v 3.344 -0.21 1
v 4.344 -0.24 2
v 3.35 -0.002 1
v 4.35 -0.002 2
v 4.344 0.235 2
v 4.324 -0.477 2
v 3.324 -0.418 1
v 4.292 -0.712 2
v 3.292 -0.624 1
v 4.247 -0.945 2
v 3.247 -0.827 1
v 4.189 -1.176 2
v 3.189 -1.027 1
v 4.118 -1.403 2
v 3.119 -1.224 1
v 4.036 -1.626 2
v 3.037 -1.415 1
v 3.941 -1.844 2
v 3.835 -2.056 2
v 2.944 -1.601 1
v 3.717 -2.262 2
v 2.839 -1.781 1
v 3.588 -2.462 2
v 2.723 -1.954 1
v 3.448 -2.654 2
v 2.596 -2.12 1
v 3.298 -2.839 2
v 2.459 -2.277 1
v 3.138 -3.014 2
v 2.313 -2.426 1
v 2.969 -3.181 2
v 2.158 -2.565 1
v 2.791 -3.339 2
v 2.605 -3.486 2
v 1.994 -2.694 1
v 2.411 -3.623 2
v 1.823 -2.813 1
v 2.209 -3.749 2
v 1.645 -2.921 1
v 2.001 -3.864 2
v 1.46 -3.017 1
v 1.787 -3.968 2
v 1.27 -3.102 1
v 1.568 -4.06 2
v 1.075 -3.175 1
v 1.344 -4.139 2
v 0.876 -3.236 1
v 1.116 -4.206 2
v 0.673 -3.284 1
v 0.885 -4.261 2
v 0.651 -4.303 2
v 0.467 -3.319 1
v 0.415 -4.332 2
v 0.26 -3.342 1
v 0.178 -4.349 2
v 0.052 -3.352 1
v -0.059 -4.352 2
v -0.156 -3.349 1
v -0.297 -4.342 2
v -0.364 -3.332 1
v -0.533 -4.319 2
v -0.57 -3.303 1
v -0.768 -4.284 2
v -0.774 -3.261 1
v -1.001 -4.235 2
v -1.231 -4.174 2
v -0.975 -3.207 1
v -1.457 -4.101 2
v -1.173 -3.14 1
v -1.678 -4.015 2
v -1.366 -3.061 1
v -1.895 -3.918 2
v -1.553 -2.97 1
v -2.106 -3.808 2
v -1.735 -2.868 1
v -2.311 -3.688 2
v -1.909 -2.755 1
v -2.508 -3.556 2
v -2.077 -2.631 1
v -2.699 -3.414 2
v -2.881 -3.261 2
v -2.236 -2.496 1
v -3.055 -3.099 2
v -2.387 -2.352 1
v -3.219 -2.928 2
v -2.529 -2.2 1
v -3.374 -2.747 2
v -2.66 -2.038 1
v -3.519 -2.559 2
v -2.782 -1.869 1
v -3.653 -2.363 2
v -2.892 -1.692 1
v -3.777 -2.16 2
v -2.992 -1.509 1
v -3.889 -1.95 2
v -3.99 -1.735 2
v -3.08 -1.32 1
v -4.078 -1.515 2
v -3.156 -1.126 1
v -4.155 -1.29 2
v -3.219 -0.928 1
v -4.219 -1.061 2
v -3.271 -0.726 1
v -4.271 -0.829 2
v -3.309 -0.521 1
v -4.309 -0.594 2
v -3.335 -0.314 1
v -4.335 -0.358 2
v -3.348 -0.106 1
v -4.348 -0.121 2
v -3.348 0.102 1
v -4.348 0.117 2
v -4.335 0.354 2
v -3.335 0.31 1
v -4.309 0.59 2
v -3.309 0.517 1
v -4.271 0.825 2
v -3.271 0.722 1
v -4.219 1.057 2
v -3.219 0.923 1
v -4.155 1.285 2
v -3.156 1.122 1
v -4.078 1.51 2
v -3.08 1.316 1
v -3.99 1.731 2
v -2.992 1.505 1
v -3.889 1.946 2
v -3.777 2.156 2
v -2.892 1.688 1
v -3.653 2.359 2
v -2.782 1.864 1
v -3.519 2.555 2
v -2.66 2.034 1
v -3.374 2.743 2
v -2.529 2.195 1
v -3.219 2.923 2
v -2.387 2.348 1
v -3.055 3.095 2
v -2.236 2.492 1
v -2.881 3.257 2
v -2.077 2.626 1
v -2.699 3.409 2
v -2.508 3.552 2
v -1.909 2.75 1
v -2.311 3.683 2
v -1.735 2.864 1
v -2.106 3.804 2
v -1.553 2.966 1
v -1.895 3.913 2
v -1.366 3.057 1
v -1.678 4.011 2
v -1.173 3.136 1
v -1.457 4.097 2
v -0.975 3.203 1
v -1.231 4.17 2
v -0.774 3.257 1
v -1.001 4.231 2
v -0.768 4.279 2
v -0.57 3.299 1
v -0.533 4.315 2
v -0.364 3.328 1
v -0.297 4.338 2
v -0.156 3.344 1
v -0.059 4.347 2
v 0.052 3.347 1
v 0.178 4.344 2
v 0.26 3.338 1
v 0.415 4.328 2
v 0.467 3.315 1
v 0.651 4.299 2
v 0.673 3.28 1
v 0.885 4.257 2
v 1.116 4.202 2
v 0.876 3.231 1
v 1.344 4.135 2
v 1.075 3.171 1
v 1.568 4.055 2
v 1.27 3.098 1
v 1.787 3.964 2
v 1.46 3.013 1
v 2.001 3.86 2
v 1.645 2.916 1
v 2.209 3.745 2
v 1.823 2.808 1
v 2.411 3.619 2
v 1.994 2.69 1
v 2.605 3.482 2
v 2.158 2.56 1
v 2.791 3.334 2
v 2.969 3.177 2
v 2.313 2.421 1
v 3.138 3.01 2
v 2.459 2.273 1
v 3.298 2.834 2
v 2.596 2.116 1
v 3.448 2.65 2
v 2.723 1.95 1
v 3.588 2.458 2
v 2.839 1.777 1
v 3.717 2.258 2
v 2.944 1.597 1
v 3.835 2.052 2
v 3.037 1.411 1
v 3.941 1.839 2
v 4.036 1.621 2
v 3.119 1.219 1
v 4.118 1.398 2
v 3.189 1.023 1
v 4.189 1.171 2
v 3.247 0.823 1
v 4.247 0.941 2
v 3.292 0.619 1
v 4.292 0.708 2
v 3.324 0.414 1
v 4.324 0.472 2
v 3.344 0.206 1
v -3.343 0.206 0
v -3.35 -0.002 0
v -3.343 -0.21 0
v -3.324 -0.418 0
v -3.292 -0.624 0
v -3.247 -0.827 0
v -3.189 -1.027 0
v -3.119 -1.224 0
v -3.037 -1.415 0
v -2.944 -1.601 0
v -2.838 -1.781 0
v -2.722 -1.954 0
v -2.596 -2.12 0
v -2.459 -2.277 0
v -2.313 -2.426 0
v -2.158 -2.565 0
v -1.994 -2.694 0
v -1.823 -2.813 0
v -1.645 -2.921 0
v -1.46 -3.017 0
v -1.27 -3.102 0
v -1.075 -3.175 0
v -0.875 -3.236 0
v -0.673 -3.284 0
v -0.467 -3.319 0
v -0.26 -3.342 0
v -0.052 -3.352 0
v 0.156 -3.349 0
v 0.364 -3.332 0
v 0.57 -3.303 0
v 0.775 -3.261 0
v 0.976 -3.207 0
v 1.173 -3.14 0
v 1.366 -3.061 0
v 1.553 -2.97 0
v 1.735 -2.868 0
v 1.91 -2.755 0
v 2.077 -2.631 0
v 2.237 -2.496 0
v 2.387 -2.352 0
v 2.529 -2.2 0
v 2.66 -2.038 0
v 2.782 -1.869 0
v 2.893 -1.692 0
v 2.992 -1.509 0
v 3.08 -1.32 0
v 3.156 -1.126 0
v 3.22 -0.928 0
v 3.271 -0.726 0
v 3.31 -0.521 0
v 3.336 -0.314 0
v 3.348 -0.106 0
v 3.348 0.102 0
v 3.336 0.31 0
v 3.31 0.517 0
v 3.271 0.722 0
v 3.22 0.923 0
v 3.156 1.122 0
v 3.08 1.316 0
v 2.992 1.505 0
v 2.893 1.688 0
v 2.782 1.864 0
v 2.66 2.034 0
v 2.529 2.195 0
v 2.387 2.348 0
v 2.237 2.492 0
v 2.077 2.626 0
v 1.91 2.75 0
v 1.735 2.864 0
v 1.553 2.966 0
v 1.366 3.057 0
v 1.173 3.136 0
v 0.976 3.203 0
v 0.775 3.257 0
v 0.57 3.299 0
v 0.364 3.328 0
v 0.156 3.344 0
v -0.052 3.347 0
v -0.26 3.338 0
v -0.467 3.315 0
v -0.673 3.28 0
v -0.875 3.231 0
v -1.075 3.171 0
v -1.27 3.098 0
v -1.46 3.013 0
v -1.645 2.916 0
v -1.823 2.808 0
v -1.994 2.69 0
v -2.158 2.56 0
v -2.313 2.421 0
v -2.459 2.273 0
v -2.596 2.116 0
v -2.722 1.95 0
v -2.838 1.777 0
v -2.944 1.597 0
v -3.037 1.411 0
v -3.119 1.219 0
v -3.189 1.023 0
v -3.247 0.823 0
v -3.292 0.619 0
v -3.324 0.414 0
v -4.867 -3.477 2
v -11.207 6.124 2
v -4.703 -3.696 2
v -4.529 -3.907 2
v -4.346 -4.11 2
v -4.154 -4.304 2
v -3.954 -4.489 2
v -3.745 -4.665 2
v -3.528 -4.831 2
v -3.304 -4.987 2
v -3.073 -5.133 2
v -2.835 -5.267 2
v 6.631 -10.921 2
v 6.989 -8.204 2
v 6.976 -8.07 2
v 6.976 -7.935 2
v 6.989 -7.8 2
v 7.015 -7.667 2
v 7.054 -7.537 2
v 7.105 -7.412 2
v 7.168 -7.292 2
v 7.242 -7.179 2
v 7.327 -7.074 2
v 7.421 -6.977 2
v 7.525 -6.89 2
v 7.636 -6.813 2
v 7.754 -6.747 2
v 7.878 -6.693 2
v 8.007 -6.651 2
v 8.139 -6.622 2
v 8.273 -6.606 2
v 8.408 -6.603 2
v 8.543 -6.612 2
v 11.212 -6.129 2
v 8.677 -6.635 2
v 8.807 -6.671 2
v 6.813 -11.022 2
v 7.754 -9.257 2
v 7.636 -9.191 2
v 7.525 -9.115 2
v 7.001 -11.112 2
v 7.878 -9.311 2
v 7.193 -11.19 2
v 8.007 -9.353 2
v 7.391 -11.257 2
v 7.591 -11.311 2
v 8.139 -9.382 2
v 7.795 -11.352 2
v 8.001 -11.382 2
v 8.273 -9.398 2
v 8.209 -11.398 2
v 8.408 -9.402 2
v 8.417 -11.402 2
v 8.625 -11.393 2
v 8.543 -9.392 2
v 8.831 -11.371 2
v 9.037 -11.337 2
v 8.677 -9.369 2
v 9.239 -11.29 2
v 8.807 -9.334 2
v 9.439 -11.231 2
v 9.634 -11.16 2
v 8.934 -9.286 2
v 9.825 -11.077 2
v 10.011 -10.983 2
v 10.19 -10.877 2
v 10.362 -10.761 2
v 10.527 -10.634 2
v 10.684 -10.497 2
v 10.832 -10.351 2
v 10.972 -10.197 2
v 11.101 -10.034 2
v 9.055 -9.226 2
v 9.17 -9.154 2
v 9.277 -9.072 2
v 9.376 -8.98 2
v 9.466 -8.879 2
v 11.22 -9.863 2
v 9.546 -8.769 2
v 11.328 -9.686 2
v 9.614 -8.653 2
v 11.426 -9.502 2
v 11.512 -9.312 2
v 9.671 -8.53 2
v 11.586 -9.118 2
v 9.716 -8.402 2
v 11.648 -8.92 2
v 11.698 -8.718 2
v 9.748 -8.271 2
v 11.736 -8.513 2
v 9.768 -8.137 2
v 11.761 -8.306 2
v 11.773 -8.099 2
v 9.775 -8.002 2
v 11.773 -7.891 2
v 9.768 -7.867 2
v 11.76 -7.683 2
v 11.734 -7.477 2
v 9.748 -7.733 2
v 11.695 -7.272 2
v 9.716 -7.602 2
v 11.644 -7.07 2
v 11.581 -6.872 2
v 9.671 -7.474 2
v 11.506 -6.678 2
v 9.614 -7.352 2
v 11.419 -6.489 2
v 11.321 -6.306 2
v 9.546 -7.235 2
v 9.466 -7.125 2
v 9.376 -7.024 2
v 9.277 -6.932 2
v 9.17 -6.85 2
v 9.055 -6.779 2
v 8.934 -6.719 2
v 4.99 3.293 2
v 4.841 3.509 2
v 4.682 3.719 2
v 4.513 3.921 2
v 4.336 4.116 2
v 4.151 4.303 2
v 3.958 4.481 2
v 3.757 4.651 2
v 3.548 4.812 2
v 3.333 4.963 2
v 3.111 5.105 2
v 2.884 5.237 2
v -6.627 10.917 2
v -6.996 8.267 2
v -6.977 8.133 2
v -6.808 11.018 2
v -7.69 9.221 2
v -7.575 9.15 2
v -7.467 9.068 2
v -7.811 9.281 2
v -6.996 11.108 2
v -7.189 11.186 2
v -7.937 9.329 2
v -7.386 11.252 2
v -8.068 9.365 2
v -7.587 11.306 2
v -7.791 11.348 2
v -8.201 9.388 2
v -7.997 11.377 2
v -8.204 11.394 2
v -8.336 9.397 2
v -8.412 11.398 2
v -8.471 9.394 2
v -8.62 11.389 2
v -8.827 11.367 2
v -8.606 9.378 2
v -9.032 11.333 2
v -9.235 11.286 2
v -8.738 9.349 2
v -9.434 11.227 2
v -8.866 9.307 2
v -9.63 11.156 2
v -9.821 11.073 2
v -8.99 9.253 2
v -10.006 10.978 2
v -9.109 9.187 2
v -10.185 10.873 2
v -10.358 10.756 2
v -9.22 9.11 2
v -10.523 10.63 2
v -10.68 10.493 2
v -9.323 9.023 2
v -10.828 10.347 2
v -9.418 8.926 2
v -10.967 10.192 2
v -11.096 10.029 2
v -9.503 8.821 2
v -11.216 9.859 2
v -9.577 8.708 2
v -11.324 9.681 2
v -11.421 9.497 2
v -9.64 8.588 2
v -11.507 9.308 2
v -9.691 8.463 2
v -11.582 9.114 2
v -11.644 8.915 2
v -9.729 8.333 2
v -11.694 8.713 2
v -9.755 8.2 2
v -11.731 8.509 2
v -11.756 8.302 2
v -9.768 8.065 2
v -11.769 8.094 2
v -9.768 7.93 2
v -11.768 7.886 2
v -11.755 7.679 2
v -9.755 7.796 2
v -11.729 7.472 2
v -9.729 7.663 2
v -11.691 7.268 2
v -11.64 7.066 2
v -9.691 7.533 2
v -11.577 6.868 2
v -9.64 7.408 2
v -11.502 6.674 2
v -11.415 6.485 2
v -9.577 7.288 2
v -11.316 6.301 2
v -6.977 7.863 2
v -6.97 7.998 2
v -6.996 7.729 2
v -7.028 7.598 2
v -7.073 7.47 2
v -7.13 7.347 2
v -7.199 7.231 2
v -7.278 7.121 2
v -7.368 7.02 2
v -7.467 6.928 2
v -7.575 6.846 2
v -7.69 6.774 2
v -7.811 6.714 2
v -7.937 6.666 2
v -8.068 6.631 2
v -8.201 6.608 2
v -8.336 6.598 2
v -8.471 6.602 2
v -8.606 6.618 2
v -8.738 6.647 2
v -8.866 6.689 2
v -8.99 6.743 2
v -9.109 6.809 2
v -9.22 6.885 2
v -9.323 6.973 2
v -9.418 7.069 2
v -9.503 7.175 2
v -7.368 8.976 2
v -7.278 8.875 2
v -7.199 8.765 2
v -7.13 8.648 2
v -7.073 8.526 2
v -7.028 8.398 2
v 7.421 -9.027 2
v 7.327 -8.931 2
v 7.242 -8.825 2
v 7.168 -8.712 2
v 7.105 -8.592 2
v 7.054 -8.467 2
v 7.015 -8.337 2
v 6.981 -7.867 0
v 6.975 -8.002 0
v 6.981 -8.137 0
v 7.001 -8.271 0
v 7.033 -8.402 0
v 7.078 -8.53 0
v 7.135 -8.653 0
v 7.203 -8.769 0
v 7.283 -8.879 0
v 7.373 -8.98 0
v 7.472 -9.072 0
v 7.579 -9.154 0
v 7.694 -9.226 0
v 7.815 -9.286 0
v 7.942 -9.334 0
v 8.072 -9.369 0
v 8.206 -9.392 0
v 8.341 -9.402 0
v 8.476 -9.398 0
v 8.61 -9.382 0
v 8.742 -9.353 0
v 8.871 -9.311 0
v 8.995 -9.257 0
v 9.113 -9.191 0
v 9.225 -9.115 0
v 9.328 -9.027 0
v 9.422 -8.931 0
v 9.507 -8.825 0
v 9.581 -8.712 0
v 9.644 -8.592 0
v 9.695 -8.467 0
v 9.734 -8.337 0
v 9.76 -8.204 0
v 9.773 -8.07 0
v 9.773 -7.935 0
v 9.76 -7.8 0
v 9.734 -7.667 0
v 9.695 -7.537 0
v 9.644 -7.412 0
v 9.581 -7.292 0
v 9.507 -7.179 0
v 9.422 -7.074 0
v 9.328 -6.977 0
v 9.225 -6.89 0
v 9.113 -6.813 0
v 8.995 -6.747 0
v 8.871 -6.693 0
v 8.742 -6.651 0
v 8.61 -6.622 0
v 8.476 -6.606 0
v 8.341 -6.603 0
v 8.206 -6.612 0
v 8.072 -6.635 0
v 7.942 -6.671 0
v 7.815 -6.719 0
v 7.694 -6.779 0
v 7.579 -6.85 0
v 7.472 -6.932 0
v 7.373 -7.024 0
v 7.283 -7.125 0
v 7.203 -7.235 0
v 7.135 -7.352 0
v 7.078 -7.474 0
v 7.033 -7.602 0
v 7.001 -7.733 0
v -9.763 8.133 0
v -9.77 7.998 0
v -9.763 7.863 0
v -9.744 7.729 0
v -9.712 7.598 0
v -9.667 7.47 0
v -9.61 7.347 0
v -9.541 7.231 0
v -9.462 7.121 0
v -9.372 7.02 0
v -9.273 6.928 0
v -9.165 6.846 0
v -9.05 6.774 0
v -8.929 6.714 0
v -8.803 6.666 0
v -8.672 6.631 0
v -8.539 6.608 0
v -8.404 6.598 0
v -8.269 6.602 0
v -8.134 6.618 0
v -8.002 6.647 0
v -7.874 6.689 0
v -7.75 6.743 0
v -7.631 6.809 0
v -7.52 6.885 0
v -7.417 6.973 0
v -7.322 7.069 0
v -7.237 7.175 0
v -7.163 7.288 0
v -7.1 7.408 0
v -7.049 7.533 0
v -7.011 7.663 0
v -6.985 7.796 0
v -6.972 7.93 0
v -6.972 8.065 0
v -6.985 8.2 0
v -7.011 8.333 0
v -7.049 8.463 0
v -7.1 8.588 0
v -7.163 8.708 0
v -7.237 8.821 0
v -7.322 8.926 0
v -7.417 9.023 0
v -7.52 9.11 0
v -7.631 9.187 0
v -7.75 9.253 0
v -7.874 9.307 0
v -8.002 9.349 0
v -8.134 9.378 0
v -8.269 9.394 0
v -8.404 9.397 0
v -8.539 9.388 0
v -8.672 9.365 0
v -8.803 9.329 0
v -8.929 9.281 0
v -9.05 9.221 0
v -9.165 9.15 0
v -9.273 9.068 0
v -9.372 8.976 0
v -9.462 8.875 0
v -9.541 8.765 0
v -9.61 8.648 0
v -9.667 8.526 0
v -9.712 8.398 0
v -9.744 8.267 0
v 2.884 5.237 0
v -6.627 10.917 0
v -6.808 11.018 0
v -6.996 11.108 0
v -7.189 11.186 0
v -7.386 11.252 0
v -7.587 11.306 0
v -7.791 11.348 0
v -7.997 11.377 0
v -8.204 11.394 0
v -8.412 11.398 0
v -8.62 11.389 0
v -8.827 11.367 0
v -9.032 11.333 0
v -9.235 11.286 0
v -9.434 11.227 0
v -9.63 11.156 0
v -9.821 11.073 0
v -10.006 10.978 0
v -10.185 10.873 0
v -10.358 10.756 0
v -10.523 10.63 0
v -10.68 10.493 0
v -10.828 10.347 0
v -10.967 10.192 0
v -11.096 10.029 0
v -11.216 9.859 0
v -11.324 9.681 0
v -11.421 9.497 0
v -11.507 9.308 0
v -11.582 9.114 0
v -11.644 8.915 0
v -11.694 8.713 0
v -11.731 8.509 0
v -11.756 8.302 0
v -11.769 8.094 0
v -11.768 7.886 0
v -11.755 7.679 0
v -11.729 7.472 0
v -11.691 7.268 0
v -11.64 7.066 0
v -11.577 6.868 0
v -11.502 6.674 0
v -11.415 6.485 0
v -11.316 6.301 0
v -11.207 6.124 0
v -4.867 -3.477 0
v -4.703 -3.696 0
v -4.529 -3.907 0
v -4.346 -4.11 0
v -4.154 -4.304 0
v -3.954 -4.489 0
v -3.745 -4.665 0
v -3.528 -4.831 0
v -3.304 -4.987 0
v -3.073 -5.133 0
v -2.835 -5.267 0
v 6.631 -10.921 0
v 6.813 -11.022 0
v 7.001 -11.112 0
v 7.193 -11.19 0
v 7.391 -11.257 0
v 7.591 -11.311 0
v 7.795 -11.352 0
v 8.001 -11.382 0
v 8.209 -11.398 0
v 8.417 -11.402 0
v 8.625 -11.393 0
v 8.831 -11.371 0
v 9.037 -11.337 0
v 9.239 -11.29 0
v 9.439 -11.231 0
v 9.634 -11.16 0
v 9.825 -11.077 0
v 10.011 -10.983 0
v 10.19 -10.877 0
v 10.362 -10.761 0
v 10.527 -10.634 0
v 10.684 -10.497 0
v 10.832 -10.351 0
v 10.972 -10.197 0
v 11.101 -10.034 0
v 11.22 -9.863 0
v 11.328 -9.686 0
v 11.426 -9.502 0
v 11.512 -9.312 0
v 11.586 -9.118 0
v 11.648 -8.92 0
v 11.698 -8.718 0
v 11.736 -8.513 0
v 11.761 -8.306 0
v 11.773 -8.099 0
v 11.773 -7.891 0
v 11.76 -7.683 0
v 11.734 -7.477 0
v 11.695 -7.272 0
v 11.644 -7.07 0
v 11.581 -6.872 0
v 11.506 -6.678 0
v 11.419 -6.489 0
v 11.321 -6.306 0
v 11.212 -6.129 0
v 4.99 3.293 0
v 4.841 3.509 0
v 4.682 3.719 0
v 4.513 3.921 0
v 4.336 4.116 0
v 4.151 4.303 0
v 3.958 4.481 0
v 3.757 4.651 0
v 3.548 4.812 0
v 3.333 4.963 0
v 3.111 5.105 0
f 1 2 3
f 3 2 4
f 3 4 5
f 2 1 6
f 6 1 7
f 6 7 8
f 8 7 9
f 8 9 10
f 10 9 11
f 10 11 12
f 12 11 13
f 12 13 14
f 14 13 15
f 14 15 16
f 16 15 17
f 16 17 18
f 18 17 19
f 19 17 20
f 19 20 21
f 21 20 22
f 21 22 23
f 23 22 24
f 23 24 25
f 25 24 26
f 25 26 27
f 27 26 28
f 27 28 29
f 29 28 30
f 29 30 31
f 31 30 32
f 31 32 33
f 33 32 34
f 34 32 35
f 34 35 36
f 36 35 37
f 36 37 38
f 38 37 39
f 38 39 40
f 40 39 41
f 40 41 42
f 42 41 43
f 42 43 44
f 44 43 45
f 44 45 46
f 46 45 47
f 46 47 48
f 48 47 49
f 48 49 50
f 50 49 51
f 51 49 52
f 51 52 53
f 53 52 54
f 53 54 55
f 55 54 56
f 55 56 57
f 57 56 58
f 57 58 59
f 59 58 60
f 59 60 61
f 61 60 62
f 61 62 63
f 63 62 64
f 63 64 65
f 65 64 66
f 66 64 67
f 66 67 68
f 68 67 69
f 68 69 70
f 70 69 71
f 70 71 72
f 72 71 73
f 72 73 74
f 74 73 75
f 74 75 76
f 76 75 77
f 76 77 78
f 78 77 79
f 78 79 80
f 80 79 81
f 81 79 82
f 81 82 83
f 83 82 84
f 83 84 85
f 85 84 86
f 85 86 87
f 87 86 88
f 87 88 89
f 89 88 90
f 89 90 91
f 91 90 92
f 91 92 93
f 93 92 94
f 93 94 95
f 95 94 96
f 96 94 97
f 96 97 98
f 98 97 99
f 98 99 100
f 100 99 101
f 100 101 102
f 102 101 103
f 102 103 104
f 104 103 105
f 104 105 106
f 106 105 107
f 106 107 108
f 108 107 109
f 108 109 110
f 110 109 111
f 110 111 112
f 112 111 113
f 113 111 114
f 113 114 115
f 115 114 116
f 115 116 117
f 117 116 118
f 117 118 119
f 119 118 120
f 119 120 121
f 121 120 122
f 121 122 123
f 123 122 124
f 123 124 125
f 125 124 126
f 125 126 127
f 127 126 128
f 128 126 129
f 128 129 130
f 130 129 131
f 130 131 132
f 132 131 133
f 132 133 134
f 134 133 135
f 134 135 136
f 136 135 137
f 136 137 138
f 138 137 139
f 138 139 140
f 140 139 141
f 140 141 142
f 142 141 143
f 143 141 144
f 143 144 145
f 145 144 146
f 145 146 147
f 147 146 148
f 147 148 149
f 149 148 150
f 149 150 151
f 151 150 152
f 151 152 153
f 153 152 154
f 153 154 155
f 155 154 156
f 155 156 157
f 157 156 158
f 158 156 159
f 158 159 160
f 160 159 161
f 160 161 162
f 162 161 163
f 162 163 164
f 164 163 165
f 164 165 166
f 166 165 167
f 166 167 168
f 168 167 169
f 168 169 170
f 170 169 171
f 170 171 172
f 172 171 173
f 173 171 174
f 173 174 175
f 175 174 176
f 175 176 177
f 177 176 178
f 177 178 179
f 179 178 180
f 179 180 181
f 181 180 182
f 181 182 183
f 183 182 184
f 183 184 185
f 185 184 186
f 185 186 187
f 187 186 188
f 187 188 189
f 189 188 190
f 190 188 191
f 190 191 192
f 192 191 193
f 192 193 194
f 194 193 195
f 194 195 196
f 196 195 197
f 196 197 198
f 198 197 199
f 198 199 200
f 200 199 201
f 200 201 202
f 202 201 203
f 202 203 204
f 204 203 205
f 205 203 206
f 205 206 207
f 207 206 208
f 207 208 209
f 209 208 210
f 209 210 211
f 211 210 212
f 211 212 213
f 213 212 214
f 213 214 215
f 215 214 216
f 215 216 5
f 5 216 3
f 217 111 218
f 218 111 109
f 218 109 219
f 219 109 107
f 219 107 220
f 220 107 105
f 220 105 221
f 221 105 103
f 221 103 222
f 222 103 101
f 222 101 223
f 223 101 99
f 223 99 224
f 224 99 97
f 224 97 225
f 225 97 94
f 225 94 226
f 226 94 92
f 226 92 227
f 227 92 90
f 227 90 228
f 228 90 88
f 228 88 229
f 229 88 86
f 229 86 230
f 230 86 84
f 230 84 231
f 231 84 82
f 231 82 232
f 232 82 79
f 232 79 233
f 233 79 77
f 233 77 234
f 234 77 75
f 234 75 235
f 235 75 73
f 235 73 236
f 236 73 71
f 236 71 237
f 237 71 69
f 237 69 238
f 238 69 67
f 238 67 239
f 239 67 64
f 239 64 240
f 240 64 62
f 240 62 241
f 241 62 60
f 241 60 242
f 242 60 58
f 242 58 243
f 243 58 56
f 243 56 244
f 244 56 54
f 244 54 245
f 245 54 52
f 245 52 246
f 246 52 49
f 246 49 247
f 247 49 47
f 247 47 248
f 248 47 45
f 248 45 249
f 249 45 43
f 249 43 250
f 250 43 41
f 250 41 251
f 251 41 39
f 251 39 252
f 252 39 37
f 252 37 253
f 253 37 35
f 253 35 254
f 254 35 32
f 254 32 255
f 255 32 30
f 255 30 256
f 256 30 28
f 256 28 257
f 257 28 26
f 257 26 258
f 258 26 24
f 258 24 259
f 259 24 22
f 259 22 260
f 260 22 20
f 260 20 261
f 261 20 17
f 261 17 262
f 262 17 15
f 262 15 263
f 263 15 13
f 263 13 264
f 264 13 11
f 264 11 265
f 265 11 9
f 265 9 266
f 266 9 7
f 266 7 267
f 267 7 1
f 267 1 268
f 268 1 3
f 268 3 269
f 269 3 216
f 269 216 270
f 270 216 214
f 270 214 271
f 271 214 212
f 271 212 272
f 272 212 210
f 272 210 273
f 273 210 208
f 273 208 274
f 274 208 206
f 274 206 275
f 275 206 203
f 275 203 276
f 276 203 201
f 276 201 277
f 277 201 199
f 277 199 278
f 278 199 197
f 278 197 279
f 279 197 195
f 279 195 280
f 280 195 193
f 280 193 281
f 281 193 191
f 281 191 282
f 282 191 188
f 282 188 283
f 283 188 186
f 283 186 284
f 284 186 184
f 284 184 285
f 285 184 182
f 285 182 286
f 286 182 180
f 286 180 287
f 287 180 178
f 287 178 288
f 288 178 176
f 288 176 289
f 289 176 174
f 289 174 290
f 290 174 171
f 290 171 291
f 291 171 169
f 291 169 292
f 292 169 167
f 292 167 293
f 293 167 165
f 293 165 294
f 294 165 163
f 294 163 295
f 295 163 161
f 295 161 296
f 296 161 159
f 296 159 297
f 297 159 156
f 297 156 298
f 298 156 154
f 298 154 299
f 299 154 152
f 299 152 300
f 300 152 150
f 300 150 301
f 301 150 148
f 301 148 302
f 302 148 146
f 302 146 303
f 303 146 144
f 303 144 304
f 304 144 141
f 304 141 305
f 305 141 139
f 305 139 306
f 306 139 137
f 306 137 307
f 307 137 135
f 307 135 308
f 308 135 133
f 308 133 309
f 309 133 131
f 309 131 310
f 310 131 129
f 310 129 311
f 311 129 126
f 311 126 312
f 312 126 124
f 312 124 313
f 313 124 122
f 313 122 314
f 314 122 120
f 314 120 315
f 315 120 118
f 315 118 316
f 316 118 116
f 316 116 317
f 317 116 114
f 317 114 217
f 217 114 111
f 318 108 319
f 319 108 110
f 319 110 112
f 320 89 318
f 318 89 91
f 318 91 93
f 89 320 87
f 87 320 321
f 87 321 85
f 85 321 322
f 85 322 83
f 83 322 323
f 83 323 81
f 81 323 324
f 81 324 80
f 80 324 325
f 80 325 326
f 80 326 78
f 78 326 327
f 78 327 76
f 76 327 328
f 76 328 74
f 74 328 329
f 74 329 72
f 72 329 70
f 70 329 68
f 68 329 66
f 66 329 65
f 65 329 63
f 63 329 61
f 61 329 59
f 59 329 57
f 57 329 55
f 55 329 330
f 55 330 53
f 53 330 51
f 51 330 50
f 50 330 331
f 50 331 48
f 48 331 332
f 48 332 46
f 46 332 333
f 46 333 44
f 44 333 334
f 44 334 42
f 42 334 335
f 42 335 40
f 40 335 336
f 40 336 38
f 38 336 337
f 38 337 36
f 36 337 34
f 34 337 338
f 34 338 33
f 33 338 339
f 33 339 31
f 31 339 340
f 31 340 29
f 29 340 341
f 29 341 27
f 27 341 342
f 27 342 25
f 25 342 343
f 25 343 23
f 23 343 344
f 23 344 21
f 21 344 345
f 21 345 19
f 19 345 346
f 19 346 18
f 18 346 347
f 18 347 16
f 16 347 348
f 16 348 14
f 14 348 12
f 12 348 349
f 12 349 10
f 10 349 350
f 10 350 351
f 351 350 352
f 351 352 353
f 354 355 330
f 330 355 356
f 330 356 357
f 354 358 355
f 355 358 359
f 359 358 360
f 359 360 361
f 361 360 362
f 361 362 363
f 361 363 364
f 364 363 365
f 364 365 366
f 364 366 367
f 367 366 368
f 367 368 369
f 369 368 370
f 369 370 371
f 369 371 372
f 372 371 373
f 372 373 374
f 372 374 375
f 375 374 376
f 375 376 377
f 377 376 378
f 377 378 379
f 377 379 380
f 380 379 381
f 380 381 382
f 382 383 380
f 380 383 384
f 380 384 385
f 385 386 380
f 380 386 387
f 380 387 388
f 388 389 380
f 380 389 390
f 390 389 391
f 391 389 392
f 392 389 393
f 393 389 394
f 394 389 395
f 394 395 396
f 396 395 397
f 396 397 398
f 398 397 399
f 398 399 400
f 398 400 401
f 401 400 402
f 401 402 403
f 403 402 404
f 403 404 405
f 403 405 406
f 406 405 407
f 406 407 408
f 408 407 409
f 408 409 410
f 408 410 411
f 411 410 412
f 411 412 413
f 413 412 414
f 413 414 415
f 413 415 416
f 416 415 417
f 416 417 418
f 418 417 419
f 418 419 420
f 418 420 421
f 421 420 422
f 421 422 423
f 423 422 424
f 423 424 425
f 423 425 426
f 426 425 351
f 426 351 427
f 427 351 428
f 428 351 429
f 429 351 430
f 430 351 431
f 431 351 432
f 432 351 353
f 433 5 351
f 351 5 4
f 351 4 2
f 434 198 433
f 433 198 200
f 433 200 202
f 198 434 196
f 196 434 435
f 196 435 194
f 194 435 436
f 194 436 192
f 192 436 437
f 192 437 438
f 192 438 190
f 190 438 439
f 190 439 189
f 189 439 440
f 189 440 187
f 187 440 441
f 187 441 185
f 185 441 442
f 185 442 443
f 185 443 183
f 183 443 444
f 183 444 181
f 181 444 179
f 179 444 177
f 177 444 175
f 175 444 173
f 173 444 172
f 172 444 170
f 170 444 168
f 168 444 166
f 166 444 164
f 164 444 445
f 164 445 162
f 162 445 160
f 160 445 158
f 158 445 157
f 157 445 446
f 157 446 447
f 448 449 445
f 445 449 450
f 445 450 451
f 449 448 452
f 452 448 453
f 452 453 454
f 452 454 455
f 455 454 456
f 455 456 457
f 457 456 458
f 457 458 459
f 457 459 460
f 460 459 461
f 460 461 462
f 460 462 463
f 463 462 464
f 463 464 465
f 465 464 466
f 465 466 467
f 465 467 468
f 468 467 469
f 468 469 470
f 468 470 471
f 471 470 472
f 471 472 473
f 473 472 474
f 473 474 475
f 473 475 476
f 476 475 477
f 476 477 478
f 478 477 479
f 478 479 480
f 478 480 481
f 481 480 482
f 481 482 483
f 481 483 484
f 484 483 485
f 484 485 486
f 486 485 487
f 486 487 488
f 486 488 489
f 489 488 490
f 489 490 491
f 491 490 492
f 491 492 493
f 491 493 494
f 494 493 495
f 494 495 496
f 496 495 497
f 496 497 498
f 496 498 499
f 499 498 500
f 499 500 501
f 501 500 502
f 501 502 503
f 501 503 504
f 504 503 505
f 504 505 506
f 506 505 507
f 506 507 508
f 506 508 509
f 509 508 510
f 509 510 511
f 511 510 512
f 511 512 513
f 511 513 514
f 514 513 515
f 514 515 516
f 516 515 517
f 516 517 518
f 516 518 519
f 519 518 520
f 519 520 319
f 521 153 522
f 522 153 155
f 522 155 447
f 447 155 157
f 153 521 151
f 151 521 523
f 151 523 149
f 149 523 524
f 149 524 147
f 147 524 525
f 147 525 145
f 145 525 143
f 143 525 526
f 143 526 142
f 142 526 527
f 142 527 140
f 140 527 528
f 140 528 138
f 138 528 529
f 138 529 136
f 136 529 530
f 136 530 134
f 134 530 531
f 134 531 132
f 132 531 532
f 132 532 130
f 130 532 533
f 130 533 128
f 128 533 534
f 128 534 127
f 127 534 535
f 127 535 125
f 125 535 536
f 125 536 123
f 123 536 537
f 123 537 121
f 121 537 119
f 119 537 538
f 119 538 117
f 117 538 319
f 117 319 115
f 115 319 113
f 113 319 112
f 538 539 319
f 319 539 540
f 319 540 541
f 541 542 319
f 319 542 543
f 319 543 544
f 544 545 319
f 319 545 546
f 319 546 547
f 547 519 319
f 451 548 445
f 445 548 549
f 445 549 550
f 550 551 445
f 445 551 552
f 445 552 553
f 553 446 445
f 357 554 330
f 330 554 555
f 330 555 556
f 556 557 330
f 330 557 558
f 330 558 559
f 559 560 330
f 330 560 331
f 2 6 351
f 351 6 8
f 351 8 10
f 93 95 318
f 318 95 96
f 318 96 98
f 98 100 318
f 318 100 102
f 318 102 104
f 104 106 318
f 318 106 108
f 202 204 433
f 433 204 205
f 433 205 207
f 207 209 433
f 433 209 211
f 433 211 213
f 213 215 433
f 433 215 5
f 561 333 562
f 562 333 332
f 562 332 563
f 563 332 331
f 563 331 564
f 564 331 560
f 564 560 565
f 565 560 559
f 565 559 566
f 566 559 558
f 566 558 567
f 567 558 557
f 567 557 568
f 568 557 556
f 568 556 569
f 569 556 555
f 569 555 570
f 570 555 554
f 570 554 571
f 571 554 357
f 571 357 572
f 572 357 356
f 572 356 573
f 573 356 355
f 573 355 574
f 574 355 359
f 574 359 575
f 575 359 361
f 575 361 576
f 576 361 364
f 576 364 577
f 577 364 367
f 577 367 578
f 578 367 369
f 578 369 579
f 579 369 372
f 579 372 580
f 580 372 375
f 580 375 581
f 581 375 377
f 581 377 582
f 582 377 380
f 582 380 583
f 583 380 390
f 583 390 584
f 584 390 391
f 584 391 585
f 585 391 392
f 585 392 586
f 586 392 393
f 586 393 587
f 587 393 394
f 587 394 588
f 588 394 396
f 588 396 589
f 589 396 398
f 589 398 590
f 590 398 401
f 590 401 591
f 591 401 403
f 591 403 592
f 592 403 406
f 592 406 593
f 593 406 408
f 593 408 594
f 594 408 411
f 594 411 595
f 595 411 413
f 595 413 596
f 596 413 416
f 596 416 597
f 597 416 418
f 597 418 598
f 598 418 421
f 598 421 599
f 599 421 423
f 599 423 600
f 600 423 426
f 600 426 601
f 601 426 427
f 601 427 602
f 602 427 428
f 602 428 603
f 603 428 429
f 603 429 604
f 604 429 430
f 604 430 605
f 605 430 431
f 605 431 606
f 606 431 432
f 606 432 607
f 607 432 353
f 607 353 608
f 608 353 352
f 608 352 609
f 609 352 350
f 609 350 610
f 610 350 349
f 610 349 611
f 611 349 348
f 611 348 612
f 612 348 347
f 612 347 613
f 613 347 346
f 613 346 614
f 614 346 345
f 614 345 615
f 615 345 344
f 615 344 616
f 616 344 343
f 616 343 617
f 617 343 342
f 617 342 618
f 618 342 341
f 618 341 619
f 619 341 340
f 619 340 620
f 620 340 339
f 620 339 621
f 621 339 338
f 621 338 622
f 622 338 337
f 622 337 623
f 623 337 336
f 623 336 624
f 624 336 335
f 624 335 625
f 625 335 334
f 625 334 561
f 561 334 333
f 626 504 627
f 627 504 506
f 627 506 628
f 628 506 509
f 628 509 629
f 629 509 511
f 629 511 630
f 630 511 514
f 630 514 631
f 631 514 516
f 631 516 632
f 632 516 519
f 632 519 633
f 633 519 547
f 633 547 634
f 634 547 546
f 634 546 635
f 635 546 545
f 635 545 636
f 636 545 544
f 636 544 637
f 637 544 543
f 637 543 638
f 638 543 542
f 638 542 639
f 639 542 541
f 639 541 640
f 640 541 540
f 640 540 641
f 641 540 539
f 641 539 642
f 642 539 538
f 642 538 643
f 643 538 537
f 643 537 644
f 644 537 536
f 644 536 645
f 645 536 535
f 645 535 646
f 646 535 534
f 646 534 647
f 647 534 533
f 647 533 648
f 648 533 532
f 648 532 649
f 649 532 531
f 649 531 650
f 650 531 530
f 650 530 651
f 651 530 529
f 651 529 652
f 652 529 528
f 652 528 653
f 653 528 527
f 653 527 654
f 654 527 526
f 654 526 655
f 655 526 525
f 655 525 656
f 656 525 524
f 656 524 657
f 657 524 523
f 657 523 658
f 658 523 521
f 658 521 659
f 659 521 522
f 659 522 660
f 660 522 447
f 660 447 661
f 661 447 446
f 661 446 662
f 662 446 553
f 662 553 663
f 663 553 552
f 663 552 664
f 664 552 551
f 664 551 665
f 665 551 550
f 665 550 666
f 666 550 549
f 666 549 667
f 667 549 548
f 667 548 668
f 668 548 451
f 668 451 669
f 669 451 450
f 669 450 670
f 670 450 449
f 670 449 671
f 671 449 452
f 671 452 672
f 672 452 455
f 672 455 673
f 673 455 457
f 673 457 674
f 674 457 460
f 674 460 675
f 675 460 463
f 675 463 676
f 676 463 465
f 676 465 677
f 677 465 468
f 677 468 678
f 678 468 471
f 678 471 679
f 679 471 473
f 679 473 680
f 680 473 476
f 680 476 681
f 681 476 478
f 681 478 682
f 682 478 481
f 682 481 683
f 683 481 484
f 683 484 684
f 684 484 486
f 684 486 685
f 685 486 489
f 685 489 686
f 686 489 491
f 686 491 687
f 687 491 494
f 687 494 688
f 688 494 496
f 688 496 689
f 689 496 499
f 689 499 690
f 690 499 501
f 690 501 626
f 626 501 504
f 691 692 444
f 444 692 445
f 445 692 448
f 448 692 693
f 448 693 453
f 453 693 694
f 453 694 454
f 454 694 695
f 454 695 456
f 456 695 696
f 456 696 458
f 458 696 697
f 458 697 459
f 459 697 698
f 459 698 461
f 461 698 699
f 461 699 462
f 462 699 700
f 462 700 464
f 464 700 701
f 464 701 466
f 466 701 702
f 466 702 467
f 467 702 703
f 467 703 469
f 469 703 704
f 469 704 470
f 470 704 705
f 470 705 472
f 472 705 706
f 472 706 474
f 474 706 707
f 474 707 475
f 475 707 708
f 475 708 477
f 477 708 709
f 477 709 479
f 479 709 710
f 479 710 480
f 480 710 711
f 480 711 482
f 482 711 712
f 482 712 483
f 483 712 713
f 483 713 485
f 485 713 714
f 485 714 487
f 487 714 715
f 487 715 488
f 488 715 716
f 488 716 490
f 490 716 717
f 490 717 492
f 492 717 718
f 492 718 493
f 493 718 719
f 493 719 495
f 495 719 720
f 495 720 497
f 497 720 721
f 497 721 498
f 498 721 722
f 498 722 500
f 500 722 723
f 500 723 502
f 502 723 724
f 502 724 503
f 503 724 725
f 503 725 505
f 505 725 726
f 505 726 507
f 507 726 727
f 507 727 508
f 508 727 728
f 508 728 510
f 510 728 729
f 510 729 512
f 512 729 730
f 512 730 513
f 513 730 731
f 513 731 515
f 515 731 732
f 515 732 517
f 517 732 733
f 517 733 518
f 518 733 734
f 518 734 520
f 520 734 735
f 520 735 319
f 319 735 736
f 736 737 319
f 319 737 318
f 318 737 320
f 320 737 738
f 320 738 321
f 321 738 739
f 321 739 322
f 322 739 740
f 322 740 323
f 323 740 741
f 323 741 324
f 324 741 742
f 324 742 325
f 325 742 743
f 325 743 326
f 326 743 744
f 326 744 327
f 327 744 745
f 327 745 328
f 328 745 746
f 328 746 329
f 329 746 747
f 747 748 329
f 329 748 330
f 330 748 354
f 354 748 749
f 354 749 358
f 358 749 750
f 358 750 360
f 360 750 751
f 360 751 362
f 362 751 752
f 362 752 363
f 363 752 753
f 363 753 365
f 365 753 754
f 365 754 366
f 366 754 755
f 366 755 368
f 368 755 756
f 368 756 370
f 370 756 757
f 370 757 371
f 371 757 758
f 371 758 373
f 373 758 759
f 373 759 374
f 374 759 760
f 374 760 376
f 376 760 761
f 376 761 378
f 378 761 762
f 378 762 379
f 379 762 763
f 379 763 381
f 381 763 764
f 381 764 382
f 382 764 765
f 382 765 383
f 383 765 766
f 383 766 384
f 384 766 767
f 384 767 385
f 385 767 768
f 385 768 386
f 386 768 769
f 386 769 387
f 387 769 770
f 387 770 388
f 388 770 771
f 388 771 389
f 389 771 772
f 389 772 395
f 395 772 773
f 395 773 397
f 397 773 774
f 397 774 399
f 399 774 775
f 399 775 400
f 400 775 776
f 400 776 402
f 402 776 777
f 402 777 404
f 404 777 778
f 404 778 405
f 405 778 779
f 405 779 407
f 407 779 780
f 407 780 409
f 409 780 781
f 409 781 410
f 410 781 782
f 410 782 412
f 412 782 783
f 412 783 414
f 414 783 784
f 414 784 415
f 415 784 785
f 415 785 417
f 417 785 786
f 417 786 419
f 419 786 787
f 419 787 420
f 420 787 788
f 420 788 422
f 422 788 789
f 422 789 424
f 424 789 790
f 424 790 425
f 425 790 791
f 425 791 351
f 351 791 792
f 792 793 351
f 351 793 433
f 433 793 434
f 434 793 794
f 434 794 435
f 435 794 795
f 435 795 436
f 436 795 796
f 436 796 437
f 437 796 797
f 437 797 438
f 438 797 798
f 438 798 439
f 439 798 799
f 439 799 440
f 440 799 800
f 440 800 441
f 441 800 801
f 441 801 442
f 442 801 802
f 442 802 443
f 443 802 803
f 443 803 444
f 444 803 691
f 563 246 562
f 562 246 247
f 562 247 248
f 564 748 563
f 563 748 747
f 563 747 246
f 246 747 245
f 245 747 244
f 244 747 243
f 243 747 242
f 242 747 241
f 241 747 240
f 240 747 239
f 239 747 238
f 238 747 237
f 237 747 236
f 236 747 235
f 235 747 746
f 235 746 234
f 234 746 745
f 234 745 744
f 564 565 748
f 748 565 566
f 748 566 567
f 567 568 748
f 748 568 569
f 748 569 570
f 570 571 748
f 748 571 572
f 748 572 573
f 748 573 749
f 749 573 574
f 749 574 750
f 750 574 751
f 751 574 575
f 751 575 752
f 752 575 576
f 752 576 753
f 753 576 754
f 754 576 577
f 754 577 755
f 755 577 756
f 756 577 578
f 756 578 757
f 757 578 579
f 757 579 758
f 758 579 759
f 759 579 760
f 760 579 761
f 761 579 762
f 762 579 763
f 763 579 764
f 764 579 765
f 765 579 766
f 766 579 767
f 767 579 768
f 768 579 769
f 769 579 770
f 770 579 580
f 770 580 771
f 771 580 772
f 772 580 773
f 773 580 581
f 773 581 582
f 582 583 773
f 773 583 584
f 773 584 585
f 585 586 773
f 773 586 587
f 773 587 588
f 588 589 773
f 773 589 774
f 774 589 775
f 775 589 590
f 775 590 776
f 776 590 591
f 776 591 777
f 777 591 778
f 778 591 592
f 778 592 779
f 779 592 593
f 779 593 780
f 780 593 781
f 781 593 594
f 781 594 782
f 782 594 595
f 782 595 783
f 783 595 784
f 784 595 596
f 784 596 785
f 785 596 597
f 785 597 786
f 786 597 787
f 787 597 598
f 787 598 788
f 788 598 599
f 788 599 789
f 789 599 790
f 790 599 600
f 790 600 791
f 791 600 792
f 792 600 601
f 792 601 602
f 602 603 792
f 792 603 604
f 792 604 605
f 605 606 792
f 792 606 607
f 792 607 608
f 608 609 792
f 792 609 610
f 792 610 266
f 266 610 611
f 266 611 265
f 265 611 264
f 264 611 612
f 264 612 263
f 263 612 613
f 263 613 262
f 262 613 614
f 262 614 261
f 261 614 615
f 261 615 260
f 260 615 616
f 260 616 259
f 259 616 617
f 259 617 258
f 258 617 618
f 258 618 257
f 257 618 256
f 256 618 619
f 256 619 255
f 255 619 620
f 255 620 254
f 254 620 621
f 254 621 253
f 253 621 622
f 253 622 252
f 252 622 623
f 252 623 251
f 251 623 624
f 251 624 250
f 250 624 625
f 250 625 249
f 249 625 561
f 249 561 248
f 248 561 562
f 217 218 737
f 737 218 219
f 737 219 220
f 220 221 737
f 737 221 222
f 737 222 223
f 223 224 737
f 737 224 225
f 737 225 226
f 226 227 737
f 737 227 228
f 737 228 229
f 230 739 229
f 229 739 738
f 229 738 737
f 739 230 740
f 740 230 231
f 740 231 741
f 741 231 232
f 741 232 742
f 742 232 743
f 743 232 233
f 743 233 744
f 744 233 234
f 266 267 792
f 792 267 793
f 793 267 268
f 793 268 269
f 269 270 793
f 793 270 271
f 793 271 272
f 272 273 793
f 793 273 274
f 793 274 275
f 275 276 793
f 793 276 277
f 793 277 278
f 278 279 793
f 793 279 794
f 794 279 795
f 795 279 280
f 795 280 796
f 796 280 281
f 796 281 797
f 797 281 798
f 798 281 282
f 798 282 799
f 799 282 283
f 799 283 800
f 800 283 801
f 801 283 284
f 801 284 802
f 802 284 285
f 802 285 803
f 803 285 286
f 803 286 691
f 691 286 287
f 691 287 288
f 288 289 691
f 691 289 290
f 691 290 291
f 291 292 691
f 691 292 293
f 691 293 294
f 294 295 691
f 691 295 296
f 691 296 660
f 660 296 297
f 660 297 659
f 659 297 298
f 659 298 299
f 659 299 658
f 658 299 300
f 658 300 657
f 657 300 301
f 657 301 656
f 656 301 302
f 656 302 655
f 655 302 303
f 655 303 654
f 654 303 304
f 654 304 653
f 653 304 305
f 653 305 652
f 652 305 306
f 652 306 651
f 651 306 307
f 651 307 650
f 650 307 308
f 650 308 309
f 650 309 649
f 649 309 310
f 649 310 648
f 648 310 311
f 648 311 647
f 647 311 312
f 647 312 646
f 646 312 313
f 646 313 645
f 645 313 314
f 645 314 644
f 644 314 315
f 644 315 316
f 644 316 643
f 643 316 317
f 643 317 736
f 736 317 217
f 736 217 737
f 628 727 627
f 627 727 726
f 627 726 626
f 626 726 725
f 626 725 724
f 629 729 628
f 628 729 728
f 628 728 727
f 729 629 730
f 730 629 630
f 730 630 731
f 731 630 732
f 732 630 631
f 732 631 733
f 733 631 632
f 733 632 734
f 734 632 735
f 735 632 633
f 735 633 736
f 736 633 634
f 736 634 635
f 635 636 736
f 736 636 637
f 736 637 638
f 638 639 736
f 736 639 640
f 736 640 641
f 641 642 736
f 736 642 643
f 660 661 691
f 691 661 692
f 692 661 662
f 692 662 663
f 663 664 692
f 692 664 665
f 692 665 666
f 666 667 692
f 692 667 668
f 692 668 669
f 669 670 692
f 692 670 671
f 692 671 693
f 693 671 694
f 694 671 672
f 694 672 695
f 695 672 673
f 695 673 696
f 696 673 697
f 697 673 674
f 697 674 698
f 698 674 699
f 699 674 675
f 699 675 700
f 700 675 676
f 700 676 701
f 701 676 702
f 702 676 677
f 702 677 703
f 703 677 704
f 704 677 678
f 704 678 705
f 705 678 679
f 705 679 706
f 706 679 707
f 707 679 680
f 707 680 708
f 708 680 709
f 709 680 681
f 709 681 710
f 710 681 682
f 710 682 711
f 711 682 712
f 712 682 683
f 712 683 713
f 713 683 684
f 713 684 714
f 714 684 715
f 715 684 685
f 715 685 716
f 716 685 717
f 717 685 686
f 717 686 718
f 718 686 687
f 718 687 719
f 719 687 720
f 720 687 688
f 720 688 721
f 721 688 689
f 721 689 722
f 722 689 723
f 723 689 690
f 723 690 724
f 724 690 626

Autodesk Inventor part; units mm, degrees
ref_plane "YZ Plane" through (0, 0, 0) normal (1, 0, 0) x (0, 1, 0)
ref_plane "XZ Plane" through (0, 0, 0) normal (0, 1, 0) x (-1, 0, 0)
ref_plane "XY Plane" through (0, 0, 0) normal (0, 0, 1) x (1, 0, 0)
sketch "Skizze1" plane through (0, 0, 0) normal (0, 0, 1) x (1, 0, 0)
  circle A0 centre (0.0001, -0.0022) radius 3.9802 projected
  circle A1 centre (-8.37, 7.9978) radius 1.4 projected
  circle A2 centre (8.3745, -8.0022) radius 1.4 projected
  line L0 (-9.5383, 7.2264) -> (-3.2198, -2.3418)
  line L1 (-7.6522, 9.1998) -> (1.8915, 3.4999)
  line L2 (9.5428, -7.2307) -> (3.3215, 2.191)
  line L3 (-1.8517, -3.5253) -> (7.6567, -9.2041)
  point P0 (0, 0)
extrude "Extrusion1" add sketch "Skizze1" along normal blind 2
sketch "Skizze2" plane through (0, 0, 2) normal (0, 0, 1) x (1, 0, 0)
  arc A0 (-7.6522, 9.1998) -> (-9.5383, 7.2264) centre (-8.37, 7.9978) ccw projected
  line L0 (-9.5383, 7.2264) -> (-3.2198, -2.3418) projected
  arc A1 (-3.2198, -2.3418) -> (-1.8517, -3.5253) centre (0.0001, -0.0022) ccw projected
  line L1 (-1.8517, -3.5253) -> (7.6567, -9.2041) projected
  arc A2 (7.6567, -9.2041) -> (9.5428, -7.2307) centre (8.3745, -8.0022) ccw projected
  line L2 (9.5428, -7.2307) -> (3.3215, 2.191) projected
  arc A3 (3.3215, 2.191) -> (1.8915, 3.4999) centre (0.0001, -0.0022) ccw projected
  line L3 (1.8915, 3.4999) -> (-7.6522, 9.1998) projected
  arc A4 (-6.6267, 10.9169) -> (-11.2072, 6.1243) centre (-8.37, 7.9978) ccw
  line L4 (-11.2072, 6.1243) -> (-4.8666, -3.4774)
  arc A5 (-4.8666, -3.4774) -> (-2.8352, -5.2674) centre (0.0001, -0.0022) ccw
  line L5 (-2.8352, -5.2674) -> (6.6312, -10.9212)
  arc A6 (6.6312, -10.9212) -> (11.2118, -6.1287) centre (8.3745, -8.0022) ccw
  line L6 (11.2118, -6.1287) -> (4.9905, 3.2931)
  arc A7 (4.9905, 3.2931) -> (2.8837, 5.2369) centre (0.0001, -0.0022) ccw
  line L7 (2.8837, 5.2369) -> (-6.6267, 10.9169)
  point P0 (0, 0)
  dimension "d2" = 2
extrude "Extrusion2" add sketch "Skizze2" against normal up to surface (2 mm away)
sketch "Skizze3" plane through (0, 0, 2) normal (0, 0, 1) x (1, 0, 0)
  circle A0 centre (0.0001, -0.0022) radius 3.9802 projected
  circle A1 centre (-8.37, 7.9978) radius 1.4 projected
  circle A2 centre (8.3745, -8.0022) radius 1.4 projected
  circle A3 centre (0.0001, -0.0022) radius 3.35
  point P0 (0, 0)
  dimension "d5" = 6.7
extrude "Extrusion3" cut sketch "Skizze3" against normal through all contours A1 | A2 | A3
sketch "Skizze4" plane through (0, 0, 2) normal (0, 0, 1) x (1, 0, 0)
  circle A0 centre (-8.37, 7.9978) radius 1.4 projected
  circle A1 centre (8.3745, -8.0022) radius 1.4 projected
  point P0 (0, 0)
hole "Bohrung1" at (-8.37, 7.9978, 2) at (8.3745, -8.0022, 2) direction (0, 0, -1) diameter 2.8 end through all
chamfer "Fase1" distance 1 angle 45 1 edges at (-3.3499, -0.0022, 2)
properties part number "IM_Lensholder_macroscope"
